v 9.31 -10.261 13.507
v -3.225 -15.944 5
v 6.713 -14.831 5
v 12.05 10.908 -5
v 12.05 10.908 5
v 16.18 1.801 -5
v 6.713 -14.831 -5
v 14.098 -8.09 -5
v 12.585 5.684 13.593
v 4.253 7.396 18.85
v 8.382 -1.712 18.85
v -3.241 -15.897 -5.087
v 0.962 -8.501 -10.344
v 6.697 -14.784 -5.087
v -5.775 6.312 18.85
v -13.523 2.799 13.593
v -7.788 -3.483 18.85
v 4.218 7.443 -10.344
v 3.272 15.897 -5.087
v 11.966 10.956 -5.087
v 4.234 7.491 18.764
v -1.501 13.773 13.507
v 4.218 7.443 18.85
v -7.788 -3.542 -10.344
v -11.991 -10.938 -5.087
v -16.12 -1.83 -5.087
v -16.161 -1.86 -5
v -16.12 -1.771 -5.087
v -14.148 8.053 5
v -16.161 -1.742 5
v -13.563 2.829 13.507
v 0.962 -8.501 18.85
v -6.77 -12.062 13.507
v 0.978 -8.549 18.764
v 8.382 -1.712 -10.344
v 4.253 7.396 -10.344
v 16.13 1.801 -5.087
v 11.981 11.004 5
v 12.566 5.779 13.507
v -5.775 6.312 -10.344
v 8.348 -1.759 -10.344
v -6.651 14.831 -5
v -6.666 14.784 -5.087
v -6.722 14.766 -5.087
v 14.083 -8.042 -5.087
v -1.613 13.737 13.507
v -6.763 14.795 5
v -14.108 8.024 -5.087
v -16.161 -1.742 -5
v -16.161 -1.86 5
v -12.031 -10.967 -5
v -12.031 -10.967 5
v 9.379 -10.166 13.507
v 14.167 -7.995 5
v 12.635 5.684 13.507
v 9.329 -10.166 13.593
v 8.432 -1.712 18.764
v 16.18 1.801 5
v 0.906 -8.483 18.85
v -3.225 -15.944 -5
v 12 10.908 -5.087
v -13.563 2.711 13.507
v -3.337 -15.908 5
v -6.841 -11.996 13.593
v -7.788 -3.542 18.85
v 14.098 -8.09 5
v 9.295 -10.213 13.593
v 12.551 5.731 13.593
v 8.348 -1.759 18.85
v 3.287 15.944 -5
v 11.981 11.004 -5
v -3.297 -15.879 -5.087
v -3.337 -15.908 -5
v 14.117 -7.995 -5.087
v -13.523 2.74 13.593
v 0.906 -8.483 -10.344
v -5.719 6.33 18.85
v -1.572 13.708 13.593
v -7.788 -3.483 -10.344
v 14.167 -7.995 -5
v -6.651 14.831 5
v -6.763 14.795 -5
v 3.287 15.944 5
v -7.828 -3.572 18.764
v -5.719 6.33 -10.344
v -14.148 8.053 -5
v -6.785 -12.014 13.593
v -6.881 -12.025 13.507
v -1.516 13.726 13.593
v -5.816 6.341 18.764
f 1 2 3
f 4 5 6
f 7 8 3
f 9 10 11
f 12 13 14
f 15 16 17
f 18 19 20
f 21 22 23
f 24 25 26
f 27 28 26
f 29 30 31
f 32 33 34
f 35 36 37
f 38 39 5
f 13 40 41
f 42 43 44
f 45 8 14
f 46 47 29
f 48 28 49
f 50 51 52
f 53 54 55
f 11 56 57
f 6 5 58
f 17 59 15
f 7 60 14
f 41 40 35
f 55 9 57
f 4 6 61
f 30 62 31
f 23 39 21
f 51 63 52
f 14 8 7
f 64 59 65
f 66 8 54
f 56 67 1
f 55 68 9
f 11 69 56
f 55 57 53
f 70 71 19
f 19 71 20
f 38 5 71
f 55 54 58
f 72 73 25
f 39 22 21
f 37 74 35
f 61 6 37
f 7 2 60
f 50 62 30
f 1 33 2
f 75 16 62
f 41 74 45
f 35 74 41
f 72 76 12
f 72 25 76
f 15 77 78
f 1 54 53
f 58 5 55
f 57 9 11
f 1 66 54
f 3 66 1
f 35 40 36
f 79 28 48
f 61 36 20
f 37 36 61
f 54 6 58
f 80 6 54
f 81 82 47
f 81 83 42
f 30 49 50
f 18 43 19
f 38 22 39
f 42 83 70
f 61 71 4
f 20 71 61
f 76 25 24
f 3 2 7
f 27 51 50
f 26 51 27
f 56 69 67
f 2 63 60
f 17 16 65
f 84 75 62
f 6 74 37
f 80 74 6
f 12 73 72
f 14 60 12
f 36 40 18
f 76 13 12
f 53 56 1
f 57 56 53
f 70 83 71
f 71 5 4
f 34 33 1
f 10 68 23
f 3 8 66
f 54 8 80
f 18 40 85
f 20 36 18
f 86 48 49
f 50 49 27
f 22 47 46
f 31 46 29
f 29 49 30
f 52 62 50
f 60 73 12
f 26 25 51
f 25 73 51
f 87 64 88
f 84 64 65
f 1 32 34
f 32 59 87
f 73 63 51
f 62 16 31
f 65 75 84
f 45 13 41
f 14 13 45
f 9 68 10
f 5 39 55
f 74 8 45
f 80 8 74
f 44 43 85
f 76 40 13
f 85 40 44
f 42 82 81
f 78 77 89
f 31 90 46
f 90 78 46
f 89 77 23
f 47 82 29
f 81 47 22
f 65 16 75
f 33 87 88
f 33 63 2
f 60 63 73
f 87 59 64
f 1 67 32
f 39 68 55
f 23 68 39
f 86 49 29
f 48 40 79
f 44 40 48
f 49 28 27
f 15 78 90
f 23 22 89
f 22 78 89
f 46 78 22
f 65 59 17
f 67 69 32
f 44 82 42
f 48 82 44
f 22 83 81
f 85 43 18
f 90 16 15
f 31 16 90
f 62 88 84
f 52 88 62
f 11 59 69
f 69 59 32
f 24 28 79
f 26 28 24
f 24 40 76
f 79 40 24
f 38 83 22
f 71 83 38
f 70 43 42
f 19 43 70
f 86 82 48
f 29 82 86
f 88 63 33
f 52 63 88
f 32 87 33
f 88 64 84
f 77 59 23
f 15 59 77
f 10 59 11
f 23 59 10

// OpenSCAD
// Auto-generated OpenSCAD file

    inner_points = 10*[[1.4067368092918164, -0.7994532745154926, 0.4999999999998308], [1.4067368092915926, -0.7994532745156754, -0.5000000000001692], [-1.4067368092915926, 0.7994532745156754, 0.5000000000001692], [-1.4067368092918164, 0.7994532745154926, -0.4999999999998308], [1.6079808299870764, 0.18008786506691687, 0.4999999999996069], [1.6079808299868528, 0.18008786506673424, -0.500000000000393], [0.6681671406727039, -1.4736304356503493, 0.5000000000001192], [0.6681671406724802, -1.473630435650532, -0.4999999999998807], [-0.6681671406724802, 1.473630435650532, 0.4999999999998807], [-0.6681671406727039, 1.4736304356503493, -0.5000000000001192], [-1.6079808299868528, -0.18008786506673424, 0.500000000000393], [-1.6079808299870764, -0.18008786506691687, -0.4999999999996069], [1.1950308268855827, 1.090841561155204, 0.4999999999995332], [1.1950308268853584, 1.0908415611550215, -0.5000000000004668], [-0.3256196655175062, -1.5849308572230525, 0.5000000000003623], [-0.32561966551773036, -1.584930857223235, -0.4999999999996378], [0.32561966551773036, 1.584930857223235, 0.4999999999996378], [0.3256196655175062, 1.5849308572230525, -0.5000000000003623], [-1.1950308268853584, -1.0908415611550215, 0.5000000000004668], [-1.1950308268855827, -1.090841561155204, -0.4999999999995332], [0.9279252557809003, -1.0165539388954856, 1.3506508083520177], [-1.3482227148786563, 0.2769886316881294, 1.3506508083522912], [1.2535449212985186, 0.5683769183276581, 1.3506508083516553], [-0.15319188799318584, 1.3678301928432421, 1.3506508083518245], [-0.6800555742060643, -1.1966418039623115, 1.3506508083524107], [0.8332474622002755, -0.17118838888009527, 1.8763819204710181], [-0.5734893470914291, 0.6282648856354888, 1.8763819204711873], [0.0946777935811629, -0.845365550014952, 1.8763819204713068], [-0.7747333677866893, -0.35127625394692097, 1.8763819204714112], [0.42029745909878125, 0.7395653072081917, 1.8763819204709444], [0.8332474621996254, -0.17118838888062501, -1.0257311121192891], [-0.5734893470920791, 0.6282648856349591, -1.02573111211912], [0.09467779358051293, -0.8453655500154817, -1.0257311121190005], [-0.7747333677873394, -0.3512762539474507, -1.0257311121188961], [0.42029745909813115, 0.739565307207662, -1.0257311121193629]];

    outer_points = 10*[[1.3833782883880748, -0.18366781795367643, -0.9594605946126766], [1.6817061295863125, 0.18366781795367643, -0.078515062948806], [-1.6817061295863125, -0.18366781795367643, 0.078515062948806], [-1.3833782883880748, 0.18366781795367643, 0.9594605946126766], [1.2027457527591328, -1.0682345020066348, -0.5294447012601022], [1.5010735939573705, -0.7008988660992819, 0.35150083040376845], [0.9786317893777532, 0.7008988660992819, -1.191240777118519], [1.276959630575991, 1.0682345020066348, -0.31029524545464815], [-1.276959630575991, -1.0682345020066348, 0.31029524545464815], [-0.9786317893777532, -0.7008988660992819, 1.191240777118519], [-1.5010735939573705, 0.7008988660992819, -0.35150083040376845], [-1.2027457527591328, 1.0682345020066348, 0.5294447012601022], [0.5057296716271069, -1.6149267780671528, -0.0654445526188289], [0.8040575128253447, -1.2475911421598, 0.8155009790450418], [0.14310566152258547, 1.2475911421598, -1.1362530969790507], [0.44143350272082327, 1.6149267780671528, -0.2553075653151802], [-0.44143350272082327, -1.6149267780671528, 0.2553075653151802], [-0.14310566152258547, -1.2475911421598, 1.1362530969790507], [-0.8040575128253447, 1.2475911421598, -0.8155009790450418], [-0.5057296716271069, 1.6149267780671528, 0.0654445526188289], [0.7868025461164767, -0.10055192633997795, -1.7577018690995023], [-1.692902837218647, -0.10055192633997795, -0.9179619223847519], [0.49453296399477237, -1.5318108864534543, -1.0619215379523868], [-1.0380092449924212, -1.5318108864534543, -0.5429337091716455], [-0.5651071272417749, 0.7840147577129805, -1.6687299336713355], [0.23746592489998974, -0.9337501643704182, -1.8210262146028207], [-1.2950762840872039, -0.9337501643704182, -1.3020383858220792], [-0.16728057411033165, -0.04918348031745989, -2.0528063971086628], [-1.1144437484582619, -0.04918348031745989, -1.7320542791746538], [-0.4595501562320361, -1.4804424404309362, -1.3570260659615474], [1.1032470408259272, 0.13229937193115845, 0.7355772938410956], [-0.42929516816126634, 0.13229937193115845, 1.2545651226218368], [0.6985005418156058, 1.0168660559841167, 0.5037971113352535], [-0.2486626325323244, 1.0168660559841167, 0.8245492292692624], [0.4062309596939014, -0.41439290412935936, 1.1995774424823689]];

    // Convex hull for inner set (I)
    module inner_hull() {
        hull() {
            for (p = inner_points) {
                translate(p) sphere(r=0.1);
            }
        }
    }

    // Convex hull for outer set (O) minus inner hull (O \ I)
    module outer_minus_inner() {
        difference() {
            hull() {
                for (p = outer_points) {
                    translate(p) sphere(r=0.1);
                }
            }
            inner_hull(); // Subtract inner hull
        }
    }

    // Convex hull for outer set (O) minus all translated inner hulls
    module outer_minus_AllTranslationInner() {
        difference() {
            hull() {
                for (p = outer_points) {
                    translate(p) sphere(r=0.1);
                }
            }
            hull() {
                translate([0,0,50]) inner_hull();
                translate([0,0,-50]) inner_hull();
            }; // Subtract translated inner hulls
        }
    }

    // Difference between outer_minus_inner and outer_minus_AllTranslationInner
    module outer_minus_inner_diff() {
        difference() {
            // Outer minus inner
            difference() {
                hull() {
                    for (p = outer_points) {
                        translate(p) sphere(r=0.1);
                    }
                }
                inner_hull();
            }

            // Subtract Outer minus AllTranslationInner
            difference() {
                hull() {
                    for (p = outer_points) {
                        translate(p) sphere(r=0.1);
                    }
                }
                hull() {
                    translate([0,0,50]) inner_hull();
                    translate([0,0,-50]) inner_hull();
                };
            }
        }
    }

    // Rendering all with colors applied
    color([1, 0, 0, 0.5]) inner_hull(); // Transparent red
    
